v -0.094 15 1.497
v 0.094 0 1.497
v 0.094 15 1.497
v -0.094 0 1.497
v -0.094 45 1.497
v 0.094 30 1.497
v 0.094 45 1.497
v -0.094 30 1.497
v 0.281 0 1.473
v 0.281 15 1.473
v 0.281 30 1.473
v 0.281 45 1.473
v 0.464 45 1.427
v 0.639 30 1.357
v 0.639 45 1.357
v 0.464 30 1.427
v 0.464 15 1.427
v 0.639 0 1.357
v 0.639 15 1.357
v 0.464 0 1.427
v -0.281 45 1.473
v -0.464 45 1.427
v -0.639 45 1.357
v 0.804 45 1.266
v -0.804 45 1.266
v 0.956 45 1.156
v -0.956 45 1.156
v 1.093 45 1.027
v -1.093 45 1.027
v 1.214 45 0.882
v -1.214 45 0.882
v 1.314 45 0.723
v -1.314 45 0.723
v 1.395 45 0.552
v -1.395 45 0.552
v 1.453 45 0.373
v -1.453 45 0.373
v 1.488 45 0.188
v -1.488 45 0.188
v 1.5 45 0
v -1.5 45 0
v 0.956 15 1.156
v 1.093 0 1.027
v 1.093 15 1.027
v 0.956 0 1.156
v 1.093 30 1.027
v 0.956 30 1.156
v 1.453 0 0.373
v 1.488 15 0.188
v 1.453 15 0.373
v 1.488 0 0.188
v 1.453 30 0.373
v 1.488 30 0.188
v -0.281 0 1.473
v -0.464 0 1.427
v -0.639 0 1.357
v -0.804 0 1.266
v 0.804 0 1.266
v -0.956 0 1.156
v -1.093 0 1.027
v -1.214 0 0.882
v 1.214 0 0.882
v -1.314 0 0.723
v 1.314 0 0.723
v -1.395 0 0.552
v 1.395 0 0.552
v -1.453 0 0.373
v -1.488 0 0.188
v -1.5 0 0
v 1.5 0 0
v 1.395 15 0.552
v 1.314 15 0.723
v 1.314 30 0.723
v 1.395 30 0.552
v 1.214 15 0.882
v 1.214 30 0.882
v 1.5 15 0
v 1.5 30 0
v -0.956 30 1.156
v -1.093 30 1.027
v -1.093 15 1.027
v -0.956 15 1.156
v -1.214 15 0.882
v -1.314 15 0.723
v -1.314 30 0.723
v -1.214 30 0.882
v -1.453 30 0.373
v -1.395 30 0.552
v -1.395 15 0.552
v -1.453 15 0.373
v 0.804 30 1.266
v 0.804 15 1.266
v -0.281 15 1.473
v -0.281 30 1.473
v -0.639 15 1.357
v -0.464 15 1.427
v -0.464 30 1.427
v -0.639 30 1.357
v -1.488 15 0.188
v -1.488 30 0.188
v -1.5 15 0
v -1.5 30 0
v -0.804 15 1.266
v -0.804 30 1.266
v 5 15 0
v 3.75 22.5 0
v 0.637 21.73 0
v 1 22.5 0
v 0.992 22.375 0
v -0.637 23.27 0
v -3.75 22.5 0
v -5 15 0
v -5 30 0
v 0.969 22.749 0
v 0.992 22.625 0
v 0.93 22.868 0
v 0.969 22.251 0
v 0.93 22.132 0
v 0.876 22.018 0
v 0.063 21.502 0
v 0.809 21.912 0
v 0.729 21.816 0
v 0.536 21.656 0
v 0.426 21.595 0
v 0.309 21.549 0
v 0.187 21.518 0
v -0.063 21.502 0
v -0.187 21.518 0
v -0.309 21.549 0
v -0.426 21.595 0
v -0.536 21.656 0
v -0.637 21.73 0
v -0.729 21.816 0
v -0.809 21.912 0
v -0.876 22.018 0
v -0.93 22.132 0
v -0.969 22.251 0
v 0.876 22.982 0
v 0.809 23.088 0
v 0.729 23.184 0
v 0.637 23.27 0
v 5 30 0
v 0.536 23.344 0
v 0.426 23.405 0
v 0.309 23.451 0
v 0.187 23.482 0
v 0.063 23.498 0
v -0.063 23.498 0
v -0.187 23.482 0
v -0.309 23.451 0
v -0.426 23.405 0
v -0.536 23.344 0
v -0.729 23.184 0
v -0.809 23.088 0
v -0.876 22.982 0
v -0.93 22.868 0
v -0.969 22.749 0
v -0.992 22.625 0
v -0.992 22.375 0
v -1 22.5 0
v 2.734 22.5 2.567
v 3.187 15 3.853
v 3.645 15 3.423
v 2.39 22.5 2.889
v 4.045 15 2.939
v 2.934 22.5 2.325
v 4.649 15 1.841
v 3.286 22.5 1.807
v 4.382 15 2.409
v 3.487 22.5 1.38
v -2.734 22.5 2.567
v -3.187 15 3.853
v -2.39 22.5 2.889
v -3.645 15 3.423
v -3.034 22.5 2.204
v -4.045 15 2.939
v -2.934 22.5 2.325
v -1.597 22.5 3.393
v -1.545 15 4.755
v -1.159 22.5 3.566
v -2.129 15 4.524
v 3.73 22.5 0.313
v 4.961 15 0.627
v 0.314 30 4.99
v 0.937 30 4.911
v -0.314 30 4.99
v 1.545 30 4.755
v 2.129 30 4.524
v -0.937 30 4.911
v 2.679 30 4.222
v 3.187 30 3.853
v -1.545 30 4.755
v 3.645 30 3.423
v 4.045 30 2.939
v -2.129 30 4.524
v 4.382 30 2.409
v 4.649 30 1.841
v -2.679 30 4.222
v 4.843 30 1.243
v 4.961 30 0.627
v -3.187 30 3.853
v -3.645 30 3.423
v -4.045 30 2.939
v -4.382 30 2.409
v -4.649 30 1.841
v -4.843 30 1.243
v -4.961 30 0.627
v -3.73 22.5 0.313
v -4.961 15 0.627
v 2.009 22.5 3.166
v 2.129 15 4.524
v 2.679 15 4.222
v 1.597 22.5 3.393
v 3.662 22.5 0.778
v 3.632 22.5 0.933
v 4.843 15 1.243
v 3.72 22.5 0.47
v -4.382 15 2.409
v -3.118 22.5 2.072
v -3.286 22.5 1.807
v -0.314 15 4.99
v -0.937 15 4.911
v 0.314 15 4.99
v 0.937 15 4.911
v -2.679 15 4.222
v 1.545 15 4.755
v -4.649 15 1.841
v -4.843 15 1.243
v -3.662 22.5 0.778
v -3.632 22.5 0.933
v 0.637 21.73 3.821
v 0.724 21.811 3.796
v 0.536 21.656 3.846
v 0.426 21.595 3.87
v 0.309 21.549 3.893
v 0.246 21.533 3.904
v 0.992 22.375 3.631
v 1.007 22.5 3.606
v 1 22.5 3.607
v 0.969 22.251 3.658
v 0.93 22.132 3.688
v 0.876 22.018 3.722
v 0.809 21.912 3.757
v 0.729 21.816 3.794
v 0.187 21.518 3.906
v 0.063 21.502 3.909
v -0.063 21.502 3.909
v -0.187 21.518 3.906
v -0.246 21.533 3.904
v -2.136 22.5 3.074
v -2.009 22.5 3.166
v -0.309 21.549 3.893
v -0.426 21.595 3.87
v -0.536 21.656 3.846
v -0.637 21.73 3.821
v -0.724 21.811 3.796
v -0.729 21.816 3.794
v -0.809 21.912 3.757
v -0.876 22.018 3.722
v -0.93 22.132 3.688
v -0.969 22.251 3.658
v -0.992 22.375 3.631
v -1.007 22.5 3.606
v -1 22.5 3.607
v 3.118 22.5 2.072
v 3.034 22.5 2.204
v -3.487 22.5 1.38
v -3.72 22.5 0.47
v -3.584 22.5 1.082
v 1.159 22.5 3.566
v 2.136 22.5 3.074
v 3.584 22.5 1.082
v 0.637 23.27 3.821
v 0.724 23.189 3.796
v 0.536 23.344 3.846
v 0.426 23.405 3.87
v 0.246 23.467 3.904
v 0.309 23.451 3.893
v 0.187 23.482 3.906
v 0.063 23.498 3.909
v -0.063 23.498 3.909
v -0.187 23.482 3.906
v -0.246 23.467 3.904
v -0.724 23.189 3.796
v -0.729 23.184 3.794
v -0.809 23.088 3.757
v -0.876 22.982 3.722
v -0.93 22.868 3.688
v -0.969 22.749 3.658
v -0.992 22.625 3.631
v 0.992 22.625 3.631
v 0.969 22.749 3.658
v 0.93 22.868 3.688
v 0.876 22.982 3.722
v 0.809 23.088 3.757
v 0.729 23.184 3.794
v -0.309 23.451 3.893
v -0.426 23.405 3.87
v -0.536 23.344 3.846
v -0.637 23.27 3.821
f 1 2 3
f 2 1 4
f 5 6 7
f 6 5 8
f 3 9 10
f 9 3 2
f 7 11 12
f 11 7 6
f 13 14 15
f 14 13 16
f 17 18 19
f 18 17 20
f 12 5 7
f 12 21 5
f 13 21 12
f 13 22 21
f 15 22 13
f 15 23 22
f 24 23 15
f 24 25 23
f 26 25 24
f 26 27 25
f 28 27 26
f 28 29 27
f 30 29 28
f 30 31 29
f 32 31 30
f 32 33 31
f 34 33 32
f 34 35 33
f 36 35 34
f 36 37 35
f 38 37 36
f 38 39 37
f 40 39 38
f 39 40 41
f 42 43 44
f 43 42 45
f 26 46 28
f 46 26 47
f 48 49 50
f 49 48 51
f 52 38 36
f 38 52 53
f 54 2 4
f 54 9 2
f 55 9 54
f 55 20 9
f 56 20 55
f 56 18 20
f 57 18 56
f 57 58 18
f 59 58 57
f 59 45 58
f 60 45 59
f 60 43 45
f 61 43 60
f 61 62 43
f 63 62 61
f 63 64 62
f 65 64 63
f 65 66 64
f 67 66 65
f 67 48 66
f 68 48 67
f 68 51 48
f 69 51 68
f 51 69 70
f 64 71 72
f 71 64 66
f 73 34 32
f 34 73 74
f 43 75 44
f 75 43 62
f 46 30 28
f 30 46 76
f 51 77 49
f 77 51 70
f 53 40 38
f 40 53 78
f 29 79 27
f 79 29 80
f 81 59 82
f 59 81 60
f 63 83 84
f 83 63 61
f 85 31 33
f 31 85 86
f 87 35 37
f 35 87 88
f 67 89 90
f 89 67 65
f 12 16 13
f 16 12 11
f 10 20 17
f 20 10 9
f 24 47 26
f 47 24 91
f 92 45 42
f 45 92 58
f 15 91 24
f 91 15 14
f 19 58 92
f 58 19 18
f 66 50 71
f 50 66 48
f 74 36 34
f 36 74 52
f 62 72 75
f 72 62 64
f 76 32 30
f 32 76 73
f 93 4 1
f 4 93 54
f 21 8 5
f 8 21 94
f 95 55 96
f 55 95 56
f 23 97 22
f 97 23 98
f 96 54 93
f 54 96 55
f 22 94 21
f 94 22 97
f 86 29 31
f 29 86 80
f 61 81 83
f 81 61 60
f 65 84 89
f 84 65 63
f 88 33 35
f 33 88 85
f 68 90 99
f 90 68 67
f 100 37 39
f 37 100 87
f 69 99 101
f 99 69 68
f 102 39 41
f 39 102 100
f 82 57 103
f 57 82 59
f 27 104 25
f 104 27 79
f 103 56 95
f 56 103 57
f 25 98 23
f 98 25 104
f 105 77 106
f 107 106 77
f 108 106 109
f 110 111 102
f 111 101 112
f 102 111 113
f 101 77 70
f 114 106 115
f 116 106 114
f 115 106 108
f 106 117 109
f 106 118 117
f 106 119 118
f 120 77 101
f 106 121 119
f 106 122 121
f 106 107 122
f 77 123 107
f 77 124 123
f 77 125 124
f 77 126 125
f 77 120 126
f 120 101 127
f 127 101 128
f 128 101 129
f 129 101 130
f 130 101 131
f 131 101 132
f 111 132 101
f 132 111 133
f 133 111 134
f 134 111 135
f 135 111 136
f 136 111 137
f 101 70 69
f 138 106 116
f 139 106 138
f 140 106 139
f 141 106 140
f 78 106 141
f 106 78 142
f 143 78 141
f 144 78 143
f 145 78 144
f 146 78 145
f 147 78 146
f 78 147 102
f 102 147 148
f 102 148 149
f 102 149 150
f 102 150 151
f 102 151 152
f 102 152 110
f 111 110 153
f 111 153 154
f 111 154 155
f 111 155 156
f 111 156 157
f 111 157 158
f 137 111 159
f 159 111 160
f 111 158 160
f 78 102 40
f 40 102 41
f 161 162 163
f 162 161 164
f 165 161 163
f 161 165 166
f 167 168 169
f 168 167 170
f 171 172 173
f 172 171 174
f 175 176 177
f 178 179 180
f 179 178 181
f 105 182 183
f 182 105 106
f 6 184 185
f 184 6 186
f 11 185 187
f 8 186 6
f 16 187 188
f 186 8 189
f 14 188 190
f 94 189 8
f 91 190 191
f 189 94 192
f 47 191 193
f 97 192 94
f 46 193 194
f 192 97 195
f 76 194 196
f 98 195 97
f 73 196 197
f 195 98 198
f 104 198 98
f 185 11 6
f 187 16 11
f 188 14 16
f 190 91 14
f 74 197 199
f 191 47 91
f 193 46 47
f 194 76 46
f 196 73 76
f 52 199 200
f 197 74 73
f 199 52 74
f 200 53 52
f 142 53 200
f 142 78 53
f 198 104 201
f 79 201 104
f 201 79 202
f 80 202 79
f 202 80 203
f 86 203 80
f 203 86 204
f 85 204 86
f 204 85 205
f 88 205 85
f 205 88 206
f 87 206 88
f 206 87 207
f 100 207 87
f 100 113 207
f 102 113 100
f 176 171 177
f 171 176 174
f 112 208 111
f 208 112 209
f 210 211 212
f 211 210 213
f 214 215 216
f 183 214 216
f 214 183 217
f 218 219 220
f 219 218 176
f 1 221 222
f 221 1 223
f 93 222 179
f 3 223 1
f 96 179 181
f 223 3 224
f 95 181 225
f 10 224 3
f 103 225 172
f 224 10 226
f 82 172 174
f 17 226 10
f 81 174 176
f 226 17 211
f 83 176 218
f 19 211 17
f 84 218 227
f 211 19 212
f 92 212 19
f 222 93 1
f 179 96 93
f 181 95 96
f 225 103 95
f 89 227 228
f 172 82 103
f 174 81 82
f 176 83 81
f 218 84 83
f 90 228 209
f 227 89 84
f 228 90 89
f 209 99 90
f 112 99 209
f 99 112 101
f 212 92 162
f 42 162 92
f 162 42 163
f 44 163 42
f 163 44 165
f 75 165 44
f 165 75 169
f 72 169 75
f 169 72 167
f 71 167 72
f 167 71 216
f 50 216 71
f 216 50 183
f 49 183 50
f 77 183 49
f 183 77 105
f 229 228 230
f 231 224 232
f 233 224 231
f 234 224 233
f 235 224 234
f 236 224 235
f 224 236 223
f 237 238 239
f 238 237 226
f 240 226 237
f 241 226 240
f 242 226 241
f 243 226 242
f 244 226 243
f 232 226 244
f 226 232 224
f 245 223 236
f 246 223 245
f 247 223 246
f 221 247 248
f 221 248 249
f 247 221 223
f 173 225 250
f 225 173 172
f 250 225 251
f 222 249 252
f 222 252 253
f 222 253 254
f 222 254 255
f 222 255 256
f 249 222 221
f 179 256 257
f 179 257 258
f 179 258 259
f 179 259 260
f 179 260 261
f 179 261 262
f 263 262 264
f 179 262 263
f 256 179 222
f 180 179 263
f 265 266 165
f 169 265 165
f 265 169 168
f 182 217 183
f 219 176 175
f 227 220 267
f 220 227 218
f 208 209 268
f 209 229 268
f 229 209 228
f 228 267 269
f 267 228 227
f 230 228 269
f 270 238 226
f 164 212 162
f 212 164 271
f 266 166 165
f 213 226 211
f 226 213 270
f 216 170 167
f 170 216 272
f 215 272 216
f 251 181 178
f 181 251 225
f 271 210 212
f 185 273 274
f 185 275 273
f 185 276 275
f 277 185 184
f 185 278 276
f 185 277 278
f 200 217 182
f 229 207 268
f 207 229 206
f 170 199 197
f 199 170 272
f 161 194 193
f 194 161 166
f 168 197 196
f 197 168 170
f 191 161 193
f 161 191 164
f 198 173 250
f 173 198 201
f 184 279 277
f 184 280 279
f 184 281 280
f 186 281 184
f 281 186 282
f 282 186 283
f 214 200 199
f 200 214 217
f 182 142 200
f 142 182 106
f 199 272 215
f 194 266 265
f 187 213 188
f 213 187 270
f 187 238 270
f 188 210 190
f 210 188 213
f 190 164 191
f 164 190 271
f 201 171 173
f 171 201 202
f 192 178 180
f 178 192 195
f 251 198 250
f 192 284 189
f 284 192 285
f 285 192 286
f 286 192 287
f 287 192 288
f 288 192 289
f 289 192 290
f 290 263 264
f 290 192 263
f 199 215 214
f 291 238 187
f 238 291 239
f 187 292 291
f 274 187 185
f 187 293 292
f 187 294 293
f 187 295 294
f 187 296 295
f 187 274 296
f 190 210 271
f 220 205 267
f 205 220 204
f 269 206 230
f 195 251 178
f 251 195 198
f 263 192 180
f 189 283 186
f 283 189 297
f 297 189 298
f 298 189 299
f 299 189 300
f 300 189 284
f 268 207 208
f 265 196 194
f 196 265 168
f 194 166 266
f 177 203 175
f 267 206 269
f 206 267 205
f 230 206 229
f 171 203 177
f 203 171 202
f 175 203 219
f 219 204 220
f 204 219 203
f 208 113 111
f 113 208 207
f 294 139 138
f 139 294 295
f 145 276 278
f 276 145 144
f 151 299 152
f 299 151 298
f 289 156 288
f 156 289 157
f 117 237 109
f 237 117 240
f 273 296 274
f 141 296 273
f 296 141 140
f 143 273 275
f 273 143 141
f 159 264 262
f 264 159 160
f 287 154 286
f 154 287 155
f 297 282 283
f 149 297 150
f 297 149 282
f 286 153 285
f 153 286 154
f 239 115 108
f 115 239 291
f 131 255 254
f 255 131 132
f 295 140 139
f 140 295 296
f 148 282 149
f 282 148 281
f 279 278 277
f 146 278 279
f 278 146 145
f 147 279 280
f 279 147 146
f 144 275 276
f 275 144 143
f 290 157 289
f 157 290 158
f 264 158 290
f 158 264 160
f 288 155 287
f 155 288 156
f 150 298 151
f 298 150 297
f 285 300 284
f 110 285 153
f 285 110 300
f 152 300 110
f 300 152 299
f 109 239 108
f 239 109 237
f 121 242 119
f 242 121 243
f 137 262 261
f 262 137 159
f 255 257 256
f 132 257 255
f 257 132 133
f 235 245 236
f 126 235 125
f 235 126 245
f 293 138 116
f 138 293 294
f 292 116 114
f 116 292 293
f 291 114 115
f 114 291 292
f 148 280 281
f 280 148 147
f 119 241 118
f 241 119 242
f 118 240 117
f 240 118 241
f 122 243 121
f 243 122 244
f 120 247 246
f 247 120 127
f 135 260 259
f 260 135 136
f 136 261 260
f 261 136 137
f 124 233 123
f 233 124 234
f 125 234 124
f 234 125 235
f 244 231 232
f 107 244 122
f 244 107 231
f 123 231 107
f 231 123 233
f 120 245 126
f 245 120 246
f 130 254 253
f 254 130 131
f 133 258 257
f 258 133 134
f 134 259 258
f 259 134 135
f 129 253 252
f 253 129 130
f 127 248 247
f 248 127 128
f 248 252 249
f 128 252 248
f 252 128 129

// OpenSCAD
$fn = 50;

/* Ceiling Loop Spindle (Allow for adjusting height of light hanging models) */

/* [Enable/Disable Loops] */
loop_pos = "c"; // [c:center,l:left,r:right, a:all, s:side only]

/* [Mounting Strip Base]  */
/* Command Strip dimentions is typically 50mmx15mm */
sx = 50 ; // length of mounting strip base
sy = 15 ; // widith of mounting strip base
sh = 2  ; // height of mounting strip base

/* [Loop Sizing] */
lt = 2; // loop thickness
lh = 5; // loop holesize

/* Hook function and module */
function loop_width(thickness, holesize) = holesize+thickness*2;

module handle(x, z, thickness, holesize)
{
    /* Hook centre */
    difference()
    {
        outerdia = (holesize+thickness*2);
        translate([0, 0  , 0])
            rotate([-90,,0])
            cylinder(r=holesize/2, h=sy*3);
        translate([-outerdia/2  , -1/2  , -outerdia/2])
            cube([outerdia,sy*3+1,outerdia/2]);
    }
}

module spindle(x, z, thickness, holesize)
{
    /* Hook centre */
    translate([0, sy  , 0])
    difference()
    {
        rotate([-90,,])
        union()
        {
            cylinder(r1=holesize, r2=holesize/2, h=sy);
            cylinder(r1=holesize/2, r2=holesize, h=sy);
        }
        translate([-holesize*2/2  , -1/2  , -holesize*2/2])
            cube([holesize*2, sy*1+1, holesize*2/2]);
    }
}

difference()
{
  union() {
      handle(sx/2, sh, lt, lh-2);
      spindle(sx/2, sh, lt, lh);
  }
  translate([0, sy*1.5  , 0])cylinder(r=1, h=10);

}
